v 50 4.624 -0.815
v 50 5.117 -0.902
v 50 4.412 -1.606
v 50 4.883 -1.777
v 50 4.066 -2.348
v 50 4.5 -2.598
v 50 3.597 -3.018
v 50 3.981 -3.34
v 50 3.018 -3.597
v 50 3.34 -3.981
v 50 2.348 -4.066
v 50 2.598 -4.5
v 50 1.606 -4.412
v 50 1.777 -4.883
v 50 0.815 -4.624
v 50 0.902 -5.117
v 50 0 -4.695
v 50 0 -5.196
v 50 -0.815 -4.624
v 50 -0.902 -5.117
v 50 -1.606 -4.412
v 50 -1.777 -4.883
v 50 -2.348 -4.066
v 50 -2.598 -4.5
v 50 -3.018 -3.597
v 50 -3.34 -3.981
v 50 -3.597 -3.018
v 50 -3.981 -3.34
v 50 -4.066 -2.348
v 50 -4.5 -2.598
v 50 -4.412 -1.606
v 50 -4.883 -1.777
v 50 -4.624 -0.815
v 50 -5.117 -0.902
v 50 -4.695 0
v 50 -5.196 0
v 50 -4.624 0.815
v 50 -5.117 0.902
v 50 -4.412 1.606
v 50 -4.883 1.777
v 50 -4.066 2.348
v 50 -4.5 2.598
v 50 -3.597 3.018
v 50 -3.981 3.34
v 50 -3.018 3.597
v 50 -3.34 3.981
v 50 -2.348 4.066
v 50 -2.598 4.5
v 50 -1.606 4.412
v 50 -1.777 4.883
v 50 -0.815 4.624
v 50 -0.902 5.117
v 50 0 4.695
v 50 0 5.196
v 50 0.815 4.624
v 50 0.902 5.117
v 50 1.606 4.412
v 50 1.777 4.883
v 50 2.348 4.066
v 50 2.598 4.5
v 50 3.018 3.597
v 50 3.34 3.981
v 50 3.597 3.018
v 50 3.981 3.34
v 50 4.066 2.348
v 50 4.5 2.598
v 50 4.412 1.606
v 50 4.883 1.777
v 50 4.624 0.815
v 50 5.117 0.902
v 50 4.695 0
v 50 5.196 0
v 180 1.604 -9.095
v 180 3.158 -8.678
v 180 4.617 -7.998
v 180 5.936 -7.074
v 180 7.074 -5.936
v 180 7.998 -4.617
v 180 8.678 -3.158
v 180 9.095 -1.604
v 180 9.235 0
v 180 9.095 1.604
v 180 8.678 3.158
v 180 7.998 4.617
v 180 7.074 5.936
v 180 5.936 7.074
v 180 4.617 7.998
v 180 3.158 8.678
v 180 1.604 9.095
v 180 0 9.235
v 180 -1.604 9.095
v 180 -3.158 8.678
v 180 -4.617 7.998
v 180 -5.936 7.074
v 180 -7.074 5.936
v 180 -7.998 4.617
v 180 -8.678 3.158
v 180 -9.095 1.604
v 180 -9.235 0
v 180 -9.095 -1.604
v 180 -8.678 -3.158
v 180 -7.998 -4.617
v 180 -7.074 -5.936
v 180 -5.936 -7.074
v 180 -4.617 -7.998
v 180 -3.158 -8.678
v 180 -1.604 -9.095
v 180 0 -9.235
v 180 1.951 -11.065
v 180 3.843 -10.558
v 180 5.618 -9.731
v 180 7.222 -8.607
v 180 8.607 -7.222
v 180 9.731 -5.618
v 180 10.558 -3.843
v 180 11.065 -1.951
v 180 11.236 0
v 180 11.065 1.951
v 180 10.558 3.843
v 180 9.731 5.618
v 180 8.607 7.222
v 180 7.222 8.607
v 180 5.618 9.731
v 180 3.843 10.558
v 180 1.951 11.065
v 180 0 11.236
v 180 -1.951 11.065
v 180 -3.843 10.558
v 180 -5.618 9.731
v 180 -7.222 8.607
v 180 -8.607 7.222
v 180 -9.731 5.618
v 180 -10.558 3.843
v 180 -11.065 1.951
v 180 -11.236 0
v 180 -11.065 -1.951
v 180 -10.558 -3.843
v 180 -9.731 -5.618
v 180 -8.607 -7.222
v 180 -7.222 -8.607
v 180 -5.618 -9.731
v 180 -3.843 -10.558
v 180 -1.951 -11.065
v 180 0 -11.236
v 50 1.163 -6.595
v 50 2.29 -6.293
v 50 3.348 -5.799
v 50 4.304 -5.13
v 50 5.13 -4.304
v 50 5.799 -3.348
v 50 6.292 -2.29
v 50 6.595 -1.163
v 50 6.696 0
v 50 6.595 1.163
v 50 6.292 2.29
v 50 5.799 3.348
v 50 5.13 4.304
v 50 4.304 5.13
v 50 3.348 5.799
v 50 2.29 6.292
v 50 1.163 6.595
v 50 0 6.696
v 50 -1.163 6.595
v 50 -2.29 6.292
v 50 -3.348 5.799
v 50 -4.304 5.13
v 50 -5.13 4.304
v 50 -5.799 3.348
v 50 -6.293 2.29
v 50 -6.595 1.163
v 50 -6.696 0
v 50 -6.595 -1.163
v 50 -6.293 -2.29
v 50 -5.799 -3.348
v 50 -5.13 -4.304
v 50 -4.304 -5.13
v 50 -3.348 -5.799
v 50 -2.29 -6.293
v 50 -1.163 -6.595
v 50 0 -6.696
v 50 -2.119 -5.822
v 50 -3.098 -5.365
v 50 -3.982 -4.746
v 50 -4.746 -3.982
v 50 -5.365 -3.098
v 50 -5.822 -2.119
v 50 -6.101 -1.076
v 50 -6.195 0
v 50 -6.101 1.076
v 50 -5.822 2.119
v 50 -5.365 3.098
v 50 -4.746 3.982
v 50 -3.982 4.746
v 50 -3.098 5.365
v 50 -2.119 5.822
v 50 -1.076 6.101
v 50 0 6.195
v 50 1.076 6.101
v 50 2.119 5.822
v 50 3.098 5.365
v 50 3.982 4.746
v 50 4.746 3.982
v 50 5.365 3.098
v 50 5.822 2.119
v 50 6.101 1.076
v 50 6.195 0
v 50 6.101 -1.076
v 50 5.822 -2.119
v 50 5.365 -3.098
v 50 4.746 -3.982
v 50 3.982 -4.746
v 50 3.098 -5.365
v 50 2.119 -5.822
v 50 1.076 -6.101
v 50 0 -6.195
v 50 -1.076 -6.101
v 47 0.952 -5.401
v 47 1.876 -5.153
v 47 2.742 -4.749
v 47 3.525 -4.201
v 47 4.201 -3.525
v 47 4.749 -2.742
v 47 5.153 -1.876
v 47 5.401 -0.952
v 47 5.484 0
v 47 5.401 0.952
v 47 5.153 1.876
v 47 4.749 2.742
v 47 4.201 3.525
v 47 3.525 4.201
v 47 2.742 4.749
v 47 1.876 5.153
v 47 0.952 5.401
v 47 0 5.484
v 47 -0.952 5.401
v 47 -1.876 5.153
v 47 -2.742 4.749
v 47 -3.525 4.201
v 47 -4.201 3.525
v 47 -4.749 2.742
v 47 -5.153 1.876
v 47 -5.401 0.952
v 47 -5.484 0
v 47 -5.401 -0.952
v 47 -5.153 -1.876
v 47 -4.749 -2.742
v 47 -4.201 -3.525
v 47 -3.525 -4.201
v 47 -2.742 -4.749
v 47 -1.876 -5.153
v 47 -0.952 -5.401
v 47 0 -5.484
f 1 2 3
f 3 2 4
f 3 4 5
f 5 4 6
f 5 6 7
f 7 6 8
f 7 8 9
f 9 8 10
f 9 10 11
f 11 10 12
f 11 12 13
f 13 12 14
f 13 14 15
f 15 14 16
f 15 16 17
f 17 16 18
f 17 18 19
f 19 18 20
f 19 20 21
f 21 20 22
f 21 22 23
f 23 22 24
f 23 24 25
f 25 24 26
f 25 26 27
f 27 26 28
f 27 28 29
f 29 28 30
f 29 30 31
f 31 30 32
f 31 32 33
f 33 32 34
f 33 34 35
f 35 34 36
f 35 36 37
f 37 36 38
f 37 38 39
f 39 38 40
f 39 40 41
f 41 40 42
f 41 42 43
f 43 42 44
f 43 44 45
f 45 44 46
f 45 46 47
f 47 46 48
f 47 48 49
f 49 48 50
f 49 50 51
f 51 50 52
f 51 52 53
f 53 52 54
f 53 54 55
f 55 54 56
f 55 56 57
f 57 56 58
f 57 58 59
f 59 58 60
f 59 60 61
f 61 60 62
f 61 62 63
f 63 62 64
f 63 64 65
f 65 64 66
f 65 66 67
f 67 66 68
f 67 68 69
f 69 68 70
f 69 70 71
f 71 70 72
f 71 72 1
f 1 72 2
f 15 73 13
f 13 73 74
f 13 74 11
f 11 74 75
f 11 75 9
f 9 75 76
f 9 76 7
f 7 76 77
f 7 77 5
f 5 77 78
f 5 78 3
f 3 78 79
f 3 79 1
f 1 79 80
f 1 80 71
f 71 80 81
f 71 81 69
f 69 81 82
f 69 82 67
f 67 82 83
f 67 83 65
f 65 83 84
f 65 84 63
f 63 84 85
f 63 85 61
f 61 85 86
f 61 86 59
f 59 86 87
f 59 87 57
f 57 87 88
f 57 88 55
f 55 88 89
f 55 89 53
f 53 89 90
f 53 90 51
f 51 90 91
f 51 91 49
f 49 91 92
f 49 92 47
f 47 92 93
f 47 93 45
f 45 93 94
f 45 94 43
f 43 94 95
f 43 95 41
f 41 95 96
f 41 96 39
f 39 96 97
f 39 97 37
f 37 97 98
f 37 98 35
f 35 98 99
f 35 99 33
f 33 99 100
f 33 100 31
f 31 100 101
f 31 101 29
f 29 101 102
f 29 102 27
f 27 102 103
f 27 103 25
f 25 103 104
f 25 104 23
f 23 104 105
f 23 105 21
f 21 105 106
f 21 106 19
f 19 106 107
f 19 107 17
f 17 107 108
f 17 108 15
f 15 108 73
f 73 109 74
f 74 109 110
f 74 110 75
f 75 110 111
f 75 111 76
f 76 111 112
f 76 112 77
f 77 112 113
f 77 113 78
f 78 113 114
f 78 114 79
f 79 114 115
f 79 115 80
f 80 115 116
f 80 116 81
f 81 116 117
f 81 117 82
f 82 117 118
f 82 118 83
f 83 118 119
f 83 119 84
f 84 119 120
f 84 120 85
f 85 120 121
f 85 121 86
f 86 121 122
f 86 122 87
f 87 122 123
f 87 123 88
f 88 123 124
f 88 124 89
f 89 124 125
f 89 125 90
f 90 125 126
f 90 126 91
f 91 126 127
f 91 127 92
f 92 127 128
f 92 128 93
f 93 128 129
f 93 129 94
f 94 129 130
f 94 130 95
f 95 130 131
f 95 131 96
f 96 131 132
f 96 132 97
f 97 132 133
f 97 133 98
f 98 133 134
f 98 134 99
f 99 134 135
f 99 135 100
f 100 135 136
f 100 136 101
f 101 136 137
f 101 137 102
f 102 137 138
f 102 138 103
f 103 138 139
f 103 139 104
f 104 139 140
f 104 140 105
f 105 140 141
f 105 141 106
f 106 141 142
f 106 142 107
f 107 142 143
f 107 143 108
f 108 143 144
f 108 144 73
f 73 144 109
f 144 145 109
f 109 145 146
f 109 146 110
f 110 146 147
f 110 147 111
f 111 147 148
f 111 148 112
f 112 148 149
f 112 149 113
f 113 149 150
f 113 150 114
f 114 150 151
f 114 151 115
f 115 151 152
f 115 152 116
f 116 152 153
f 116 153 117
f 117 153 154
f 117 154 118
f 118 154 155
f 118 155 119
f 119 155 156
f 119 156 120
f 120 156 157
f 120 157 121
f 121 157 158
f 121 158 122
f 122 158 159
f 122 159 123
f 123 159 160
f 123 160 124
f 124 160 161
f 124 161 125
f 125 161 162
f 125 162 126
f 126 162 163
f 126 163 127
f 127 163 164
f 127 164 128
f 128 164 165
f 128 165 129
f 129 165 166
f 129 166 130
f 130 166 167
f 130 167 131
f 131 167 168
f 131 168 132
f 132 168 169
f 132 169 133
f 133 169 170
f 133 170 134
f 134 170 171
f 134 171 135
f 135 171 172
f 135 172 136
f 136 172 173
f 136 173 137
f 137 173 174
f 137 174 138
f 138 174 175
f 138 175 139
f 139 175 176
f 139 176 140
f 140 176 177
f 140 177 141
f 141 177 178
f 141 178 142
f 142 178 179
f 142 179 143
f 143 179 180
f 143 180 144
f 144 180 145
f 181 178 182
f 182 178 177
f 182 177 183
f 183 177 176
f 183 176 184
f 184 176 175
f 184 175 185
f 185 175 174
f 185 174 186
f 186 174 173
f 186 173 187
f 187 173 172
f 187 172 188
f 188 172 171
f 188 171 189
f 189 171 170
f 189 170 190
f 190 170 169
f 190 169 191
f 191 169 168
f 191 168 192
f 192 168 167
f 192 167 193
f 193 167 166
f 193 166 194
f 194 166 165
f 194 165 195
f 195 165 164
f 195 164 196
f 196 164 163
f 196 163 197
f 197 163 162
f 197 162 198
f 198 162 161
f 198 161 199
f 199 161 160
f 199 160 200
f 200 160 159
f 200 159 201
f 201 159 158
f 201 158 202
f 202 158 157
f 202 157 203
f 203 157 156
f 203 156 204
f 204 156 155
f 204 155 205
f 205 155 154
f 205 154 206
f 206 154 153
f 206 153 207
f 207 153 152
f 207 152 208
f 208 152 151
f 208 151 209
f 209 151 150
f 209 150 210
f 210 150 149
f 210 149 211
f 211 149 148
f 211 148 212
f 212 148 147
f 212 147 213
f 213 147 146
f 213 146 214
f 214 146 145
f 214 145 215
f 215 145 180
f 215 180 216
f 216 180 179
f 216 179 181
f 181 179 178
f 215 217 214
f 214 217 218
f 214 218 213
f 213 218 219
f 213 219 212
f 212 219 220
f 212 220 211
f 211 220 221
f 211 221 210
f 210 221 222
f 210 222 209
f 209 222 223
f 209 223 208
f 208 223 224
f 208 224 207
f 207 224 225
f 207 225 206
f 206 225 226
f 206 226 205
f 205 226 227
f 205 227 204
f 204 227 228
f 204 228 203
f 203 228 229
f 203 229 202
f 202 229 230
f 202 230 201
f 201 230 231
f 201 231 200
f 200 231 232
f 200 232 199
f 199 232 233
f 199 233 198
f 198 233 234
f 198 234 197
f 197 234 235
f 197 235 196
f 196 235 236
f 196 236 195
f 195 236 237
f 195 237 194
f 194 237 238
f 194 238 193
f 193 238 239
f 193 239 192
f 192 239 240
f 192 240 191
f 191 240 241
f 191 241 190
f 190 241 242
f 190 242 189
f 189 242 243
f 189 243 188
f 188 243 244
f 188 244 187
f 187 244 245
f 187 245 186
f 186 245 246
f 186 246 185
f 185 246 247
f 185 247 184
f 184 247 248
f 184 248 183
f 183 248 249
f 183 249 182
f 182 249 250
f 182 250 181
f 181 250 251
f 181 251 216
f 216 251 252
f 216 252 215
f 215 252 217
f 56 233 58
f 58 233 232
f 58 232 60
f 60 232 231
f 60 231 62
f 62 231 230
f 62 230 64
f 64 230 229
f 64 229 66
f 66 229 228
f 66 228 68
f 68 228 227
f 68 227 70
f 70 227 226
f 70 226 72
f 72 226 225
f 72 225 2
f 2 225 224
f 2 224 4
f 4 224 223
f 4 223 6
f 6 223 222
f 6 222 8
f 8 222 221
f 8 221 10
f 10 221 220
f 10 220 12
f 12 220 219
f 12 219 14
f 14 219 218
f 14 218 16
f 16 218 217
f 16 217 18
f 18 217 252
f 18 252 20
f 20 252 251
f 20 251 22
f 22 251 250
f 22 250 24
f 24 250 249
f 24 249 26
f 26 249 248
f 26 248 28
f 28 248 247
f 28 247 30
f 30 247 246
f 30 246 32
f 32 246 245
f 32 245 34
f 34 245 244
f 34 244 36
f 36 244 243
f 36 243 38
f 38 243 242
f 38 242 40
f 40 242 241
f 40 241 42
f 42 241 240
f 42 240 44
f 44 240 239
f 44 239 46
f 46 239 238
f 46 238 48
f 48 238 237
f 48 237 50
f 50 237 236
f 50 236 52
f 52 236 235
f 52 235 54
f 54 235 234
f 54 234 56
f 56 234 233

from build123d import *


with BuildPart() as part:
    # Sketch2 → Revolve2 (revolve)
    with BuildSketch(Plane.XY, mode=Mode.PRIVATE) as revolve2_sk:
        with BuildLine():
            Line((0, 1.2), (50, 4.696340597))
            Line((50, 4.696340597), (50, 6.696340597))
            Line((50, 6.696340597), (1.851094968, 3.32944117))
            ThreePointArc((1.851094968, 3.32944117), (0.484525778, 2.648094905), (0, 1.2))
        make_face()
    revolve(revolve2_sk.sketch.rotate(Axis((-19.275847123, 0, 0), (1, 0, 0)), 90), axis=Axis((-19.275847123, 0, 0), (1, 0, 0)))

    # Sketch3 → Revolve3 (revolve)
    with BuildSketch(Plane.XY, mode=Mode.PRIVATE) as revolve3_sk:
        Polygon((50, 4.695121509), (180, 9.234821543), (180, 11.236040631), (50, 6.696340597), align=None)
    revolve(revolve3_sk.sketch.rotate(Axis((50, 0, 0), (-1, 0, 0)), 90), axis=Axis((50, 0, 0), (-1, 0, 0)))

    # SurfaceCut3
    split(bisect_by=Plane(origin=(50, 0, 0), x_dir=(0, 0, -1), z_dir=(1, 0, 0)), keep=Keep.TOP)

    # Sketch4 → Revolve4 (revolve)
    with BuildSketch(Plane.XY, mode=Mode.PRIVATE) as revolve4_sk:
        Polygon((50, 6.195119648), (47, 5.484118263), (50, 5.196340597), align=None)
    revolve(revolve4_sk.sketch.rotate(Axis((50, 0, 0), (-1, 0, 0)), 90), axis=Axis((50, 0, 0), (-1, 0, 0)))


solid = part.part
